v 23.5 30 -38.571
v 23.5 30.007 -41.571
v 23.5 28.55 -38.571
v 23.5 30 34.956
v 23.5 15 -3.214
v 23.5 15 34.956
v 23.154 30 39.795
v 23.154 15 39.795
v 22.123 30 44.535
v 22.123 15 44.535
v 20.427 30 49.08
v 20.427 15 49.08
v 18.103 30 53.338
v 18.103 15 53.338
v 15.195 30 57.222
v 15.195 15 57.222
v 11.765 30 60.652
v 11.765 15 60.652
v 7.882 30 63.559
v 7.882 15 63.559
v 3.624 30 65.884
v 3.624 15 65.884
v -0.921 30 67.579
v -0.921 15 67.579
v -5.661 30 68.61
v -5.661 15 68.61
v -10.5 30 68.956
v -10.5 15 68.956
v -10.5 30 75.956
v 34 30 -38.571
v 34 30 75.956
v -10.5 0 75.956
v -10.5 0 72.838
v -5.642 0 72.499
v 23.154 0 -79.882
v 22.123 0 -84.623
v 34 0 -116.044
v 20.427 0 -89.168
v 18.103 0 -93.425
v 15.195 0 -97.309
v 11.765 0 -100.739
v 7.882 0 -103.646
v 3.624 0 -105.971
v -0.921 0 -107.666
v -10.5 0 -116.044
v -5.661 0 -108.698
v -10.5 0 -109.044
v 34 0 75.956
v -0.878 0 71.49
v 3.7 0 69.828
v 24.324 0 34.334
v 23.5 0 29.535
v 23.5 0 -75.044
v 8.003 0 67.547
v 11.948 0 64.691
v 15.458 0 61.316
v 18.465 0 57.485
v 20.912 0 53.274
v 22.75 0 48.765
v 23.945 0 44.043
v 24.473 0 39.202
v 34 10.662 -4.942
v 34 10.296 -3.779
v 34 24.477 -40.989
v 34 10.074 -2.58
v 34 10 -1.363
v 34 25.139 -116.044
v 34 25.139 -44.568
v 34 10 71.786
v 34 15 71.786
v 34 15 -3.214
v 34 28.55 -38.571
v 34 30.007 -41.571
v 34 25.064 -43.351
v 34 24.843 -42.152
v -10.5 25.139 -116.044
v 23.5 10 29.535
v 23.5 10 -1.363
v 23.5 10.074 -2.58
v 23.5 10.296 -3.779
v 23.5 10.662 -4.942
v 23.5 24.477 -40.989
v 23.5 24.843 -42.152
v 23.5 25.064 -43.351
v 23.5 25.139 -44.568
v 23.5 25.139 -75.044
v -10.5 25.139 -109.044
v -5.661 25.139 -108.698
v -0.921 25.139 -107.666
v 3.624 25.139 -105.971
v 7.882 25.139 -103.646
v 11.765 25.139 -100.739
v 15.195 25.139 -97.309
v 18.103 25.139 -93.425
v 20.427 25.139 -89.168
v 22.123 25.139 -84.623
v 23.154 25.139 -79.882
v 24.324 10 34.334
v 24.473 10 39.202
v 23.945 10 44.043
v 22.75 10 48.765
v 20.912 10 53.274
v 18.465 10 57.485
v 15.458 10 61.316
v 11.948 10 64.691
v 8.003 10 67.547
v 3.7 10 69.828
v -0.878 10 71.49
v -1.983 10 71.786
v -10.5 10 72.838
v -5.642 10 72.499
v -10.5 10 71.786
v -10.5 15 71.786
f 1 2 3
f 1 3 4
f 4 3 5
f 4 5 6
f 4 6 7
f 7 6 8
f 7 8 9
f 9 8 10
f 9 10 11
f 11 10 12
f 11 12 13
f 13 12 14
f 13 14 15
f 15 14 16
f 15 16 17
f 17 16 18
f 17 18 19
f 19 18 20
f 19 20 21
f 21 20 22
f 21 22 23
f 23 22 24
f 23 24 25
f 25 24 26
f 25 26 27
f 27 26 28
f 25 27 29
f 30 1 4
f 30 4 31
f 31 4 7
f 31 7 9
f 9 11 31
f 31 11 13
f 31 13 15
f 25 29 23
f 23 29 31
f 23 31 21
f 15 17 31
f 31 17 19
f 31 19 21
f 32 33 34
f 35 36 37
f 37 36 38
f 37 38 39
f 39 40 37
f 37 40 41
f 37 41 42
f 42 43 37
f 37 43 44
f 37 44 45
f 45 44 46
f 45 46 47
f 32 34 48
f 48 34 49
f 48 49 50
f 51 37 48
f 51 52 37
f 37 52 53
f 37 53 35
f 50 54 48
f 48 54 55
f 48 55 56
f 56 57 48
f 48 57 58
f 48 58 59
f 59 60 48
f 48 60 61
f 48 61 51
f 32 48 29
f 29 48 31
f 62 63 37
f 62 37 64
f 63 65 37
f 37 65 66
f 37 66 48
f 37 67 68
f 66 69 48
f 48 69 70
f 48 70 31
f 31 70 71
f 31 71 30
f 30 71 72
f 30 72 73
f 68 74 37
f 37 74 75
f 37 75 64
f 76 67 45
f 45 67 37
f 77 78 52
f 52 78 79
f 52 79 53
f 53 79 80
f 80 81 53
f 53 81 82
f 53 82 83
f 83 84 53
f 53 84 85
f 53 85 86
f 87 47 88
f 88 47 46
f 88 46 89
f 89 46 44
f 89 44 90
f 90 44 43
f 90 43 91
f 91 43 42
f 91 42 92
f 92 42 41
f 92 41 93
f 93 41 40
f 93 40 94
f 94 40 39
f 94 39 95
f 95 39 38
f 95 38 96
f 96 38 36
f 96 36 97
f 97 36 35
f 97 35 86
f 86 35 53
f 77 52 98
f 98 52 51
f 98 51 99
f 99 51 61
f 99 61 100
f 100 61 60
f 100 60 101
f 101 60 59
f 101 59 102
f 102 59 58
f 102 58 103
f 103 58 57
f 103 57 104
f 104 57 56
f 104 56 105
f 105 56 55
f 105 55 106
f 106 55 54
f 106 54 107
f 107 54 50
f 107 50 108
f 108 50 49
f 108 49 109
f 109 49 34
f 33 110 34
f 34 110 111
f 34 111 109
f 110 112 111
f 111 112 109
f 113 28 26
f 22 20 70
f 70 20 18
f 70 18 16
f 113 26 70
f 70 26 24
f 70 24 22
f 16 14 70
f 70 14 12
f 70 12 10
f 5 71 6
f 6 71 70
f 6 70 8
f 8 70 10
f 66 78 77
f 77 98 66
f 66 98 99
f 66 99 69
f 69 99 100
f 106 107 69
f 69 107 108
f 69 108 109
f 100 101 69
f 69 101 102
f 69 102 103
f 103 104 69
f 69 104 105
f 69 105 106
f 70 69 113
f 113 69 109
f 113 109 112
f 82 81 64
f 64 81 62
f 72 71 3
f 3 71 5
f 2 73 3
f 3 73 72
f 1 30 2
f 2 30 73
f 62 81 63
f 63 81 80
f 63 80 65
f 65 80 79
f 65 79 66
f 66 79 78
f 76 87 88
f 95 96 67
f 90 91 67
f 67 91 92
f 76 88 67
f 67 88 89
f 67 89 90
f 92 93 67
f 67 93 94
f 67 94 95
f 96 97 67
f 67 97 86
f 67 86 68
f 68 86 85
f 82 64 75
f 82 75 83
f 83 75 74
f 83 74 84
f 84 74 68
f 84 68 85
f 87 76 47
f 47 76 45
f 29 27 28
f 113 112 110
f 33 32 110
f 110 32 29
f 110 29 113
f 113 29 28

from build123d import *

# Parameters (mm, degrees)
SKETCH1_W           = 89
SKETCH1_H           = 192
BOSS_EXTRUDE1_DEPTH = 30
SKETCH2_R           = 34.99943994
CUT_EXTRUDE1_DEPTH  = 10
SKETCH3_W           = 75
SKETCH3_H           = 5
CUT_EXTRUDE2_DEPTH  = 102
CUT_EXTRUDE4_DEPTH  = 102
SKETCH6_W           = 10.5
SKETCH6_H           = 4
CUT_EXTRUDE7_DEPTH  = 8
BOSS_EXTRUDE2_DEPTH = 10.5
CUT_EXTRUDE8_DEPTH  = 20.767757578
BOSS_EXTRUDE3_DEPTH = 10.5
CUT_EXTRUDE9_DEPTH  = 22.812544275
BOSS_EXTRUDE6_DEPTH = 10.5
BOSS_EXTRUDE7_DEPTH = 10.5
FILLET1_R           = 10
FILLET2_R           = 10
FILLET3_R           = 10
FILLET4_R           = 10
CUT_EXTRUDE11_DEPTH = 99
SKETCH15_W          = 7.554212703
SKETCH15_H          = 3.259234926
CUT_EXTRUDE12_DEPTH = 99
FILLET5_R           = 10
SKETCH16_W          = 51.485854904
SKETCH16_H          = 41.780762453
CUT_EXTRUDE13_DEPTH = 221


with BuildPart() as part:
    # Sketch1 → Boss-Extrude1 (new body)
    with BuildSketch(Plane(origin=(0, 0, 0), x_dir=(1, 0, 0), z_dir=(0, 1, 0))):
        with Locations((-10.5, 20.043668932)):
            Rectangle(SKETCH1_W, SKETCH1_H)
        with BuildLine():
            Line((-44.5, -34.956331068), (-44.5, 75.043668932))
            ThreePointArc((-44.5, 75.043668932), (-10.5, 109.043668932), (23.5, 75.043668932))
            Line((23.5, 75.043668932), (23.5, -34.956331068))
            ThreePointArc((23.5, -34.956331068), (-10.5, -68.956331068), (-44.5, -34.956331068))
        make_face(mode=Mode.SUBTRACT)
    extrude(amount=BOSS_EXTRUDE1_DEPTH)

    # Sketch2 → Cut-Extrude1 (cut)
    with BuildSketch(Plane.XZ):
        with Locations((-10.5, 37.838844027)):
            Circle(SKETCH2_R)
    extrude(amount=-CUT_EXTRUDE1_DEPTH, mode=Mode.SUBTRACT)

    # Sketch3 → Cut-Extrude2 (cut)
    with BuildSketch(Plane(origin=(34, 0, 0), x_dir=(0, 0, -1), z_dir=(1, 0, 0))):
        with Locations((-34.286288065, 12.5)):
            Rectangle(SKETCH3_W, SKETCH3_H)
    extrude(amount=-CUT_EXTRUDE2_DEPTH, mode=Mode.SUBTRACT)

    # Sketch4 → Cut-Extrude4 (cut)
    with BuildSketch(Plane.ZY.offset(55)):
        Polygon((-40.970715348, 29.469395922), (-41.211628541, 24.561719678), (-3.213711935, 10), (-3.213711935, 15), align=None)
    extrude(amount=-CUT_EXTRUDE4_DEPTH, mode=Mode.SUBTRACT)

    # Sketch6 → Cut-Extrude7 (cut)
    with BuildSketch(Plane(origin=(0, 30, 0), x_dir=(1, 0, 0), z_dir=(0, 1, 0))):
        with Locations((-49.75, 40.570603007)):
            Rectangle(SKETCH6_W, SKETCH6_H)
        with Locations((28.75, 40.570603007)):
            Rectangle(SKETCH6_W, SKETCH6_H)
    extrude(amount=-CUT_EXTRUDE7_DEPTH, mode=Mode.SUBTRACT)

    # Sketch7 → Boss-Extrude2 (add)
    with BuildSketch(Plane.ZY.offset(55)):
        Polygon((-38.570603007, 23.549614886), (-42.570603007, 25.082511526), (-42.570603007, 22), (-38.570603007, 22), align=None)
    extrude(amount=-BOSS_EXTRUDE2_DEPTH)

    # Sketch8 → Cut-Extrude8 (cut)
    with BuildSketch(Plane.ZY.offset(55)):
        Polygon((-42.570603007, 25.082511526), (-55.402488324, 30), (-42.570603007, 30), align=None)
    extrude(amount=-CUT_EXTRUDE8_DEPTH, mode=Mode.SUBTRACT)

    # Sketch9 → Boss-Extrude3 (add)
    with BuildSketch(Plane(origin=(34, 0, 0), x_dir=(0, 0, -1), z_dir=(1, 0, 0))):
        Polygon((38.570603007, 23.549614886), (42.570603007, 25.082511526), (42.570603007, 22), (38.570603007, 22), align=None)
    extrude(amount=-BOSS_EXTRUDE3_DEPTH)

    # Sketch10 → Cut-Extrude9 (cut)
    with BuildSketch(Plane(origin=(34, 0, 0), x_dir=(0, 0, -1), z_dir=(1, 0, 0))):
        Polygon((42.570603007, 25.082511526), (55.402488324, 30), (42.570603007, 30), align=None)
    extrude(amount=-CUT_EXTRUDE9_DEPTH, mode=Mode.SUBTRACT)

    # Sketch12 → Boss-Extrude6 (add)
    with BuildSketch(Plane.ZY.offset(55)):
        Polygon((-38.570603007, 30), (-41.570603007, 30), (-38.570603007, 28.549614886), align=None)
    extrude(amount=-BOSS_EXTRUDE6_DEPTH)

    # Sketch11 → Boss-Extrude7 (add)
    with BuildSketch(Plane(origin=(34, 0, 0), x_dir=(0, 0, -1), z_dir=(1, 0, 0))):
        Polygon((38.570603007, 28.549614886), (41.570603007, 30.007074027), (38.570603007, 30), align=None)
    extrude(amount=-BOSS_EXTRUDE7_DEPTH)

    # Fillet1
    fillet1_edges = [part.edges().sort_by_distance(p)[0] for p in [
        (-49.75, 30, -55.402488324),
    ]]
    fillet(fillet1_edges, radius=FILLET1_R)

    # Fillet2
    fillet2_edges = [part.edges().sort_by_distance(p)[0] for p in [
        (28.75, 30, -55.402488324),
    ]]
    fillet(fillet2_edges, radius=FILLET2_R)

    # Fillet3
    fillet3_edges = [part.edges().sort_by_distance(p)[0] for p in [
        (-49.75, 10, -3.213711935),
    ]]
    fillet(fillet3_edges, radius=FILLET3_R)

    # Fillet4
    fillet4_edges = [part.edges().sort_by_distance(p)[0] for p in [
        (28.75, 10, -3.213711935),
    ]]
    fillet(fillet4_edges, radius=FILLET4_R)

    # Sketch14 → Cut-Extrude11 (cut)
    with BuildSketch(Plane(origin=(34, 0, 0), x_dir=(0, 0, -1), z_dir=(1, 0, 0))):
        Polygon((42.717415751, 25.138773717), (116.043668932, 25.138773717), (116.043668932, 30), (57.252994033, 30), (53.674522762, 29.337801849), align=None)
    extrude(amount=-CUT_EXTRUDE11_DEPTH, mode=Mode.SUBTRACT)


with BuildPart() as cut_extrude11_piece_1:
    # of the separate pieces the step leaves, piece 1, a body of its own (cut_extrude11_pieces)
    add(part.part.solids().sort_by_distance((23.5, 25.138773717, -42.717415751))[0])

    # Fillet5
    fillet5_edges = [cut_extrude11_piece_1.edges().sort_by_distance(p)[0] for p in [
        (-49.75, 25.138773717, -42.717415751),
        (28.75, 25.138773717, -42.717415751),
    ]]
    fillet(fillet5_edges, radius=FILLET5_R)

    # Sketch16 → Cut-Extrude13 (cut)
    with BuildSketch(Plane(origin=(0, 0, -116.043668932), x_dir=(-1, 0, 0), z_dir=(0, 0, -1))):
        with Locations((36.242927452, 18.346859621)):
            Rectangle(SKETCH16_W, SKETCH16_H)
    extrude(amount=-CUT_EXTRUDE13_DEPTH, mode=Mode.SUBTRACT)


with BuildPart() as cut_extrude11_piece_2:
    # of the separate pieces the step leaves, piece 2, a body of its own (cut_extrude11_pieces)
    add(part.part.solids().sort_by_distance((23.5, 30, -57.252994033))[0])


with BuildPart() as cut_extrude11_piece_3:
    # of the separate pieces the step leaves, piece 3, a body of its own (cut_extrude11_pieces)
    add(part.part.solids().sort_by_distance((-55, 30, -57.252994033))[0])


with BuildPart() as cut_extrude12_tool:
    # Sketch15 → Cut-Extrude12 (new body)
    with BuildSketch(Plane(origin=(34, 0, 0), x_dir=(0, 0, -1), z_dir=(1, 0, 0))):
        with Locations((54.846987071, 29.864387296)):
            Rectangle(SKETCH15_W, SKETCH15_H)
    extrude(amount=-CUT_EXTRUDE12_DEPTH)


with BuildPart() as cut_extrude11_piece_2_1:
    add(cut_extrude11_piece_2.part)

    # Cut-Extrude12: cut by cut_extrude12_tool
    add(cut_extrude12_tool.part, mode=Mode.SUBTRACT)


with BuildPart() as cut_extrude11_piece_3_1:
    add(cut_extrude11_piece_3.part)

    # Cut-Extrude12: cut by cut_extrude12_tool
    add(cut_extrude12_tool.part, mode=Mode.SUBTRACT)


solid = cut_extrude11_piece_1.part
